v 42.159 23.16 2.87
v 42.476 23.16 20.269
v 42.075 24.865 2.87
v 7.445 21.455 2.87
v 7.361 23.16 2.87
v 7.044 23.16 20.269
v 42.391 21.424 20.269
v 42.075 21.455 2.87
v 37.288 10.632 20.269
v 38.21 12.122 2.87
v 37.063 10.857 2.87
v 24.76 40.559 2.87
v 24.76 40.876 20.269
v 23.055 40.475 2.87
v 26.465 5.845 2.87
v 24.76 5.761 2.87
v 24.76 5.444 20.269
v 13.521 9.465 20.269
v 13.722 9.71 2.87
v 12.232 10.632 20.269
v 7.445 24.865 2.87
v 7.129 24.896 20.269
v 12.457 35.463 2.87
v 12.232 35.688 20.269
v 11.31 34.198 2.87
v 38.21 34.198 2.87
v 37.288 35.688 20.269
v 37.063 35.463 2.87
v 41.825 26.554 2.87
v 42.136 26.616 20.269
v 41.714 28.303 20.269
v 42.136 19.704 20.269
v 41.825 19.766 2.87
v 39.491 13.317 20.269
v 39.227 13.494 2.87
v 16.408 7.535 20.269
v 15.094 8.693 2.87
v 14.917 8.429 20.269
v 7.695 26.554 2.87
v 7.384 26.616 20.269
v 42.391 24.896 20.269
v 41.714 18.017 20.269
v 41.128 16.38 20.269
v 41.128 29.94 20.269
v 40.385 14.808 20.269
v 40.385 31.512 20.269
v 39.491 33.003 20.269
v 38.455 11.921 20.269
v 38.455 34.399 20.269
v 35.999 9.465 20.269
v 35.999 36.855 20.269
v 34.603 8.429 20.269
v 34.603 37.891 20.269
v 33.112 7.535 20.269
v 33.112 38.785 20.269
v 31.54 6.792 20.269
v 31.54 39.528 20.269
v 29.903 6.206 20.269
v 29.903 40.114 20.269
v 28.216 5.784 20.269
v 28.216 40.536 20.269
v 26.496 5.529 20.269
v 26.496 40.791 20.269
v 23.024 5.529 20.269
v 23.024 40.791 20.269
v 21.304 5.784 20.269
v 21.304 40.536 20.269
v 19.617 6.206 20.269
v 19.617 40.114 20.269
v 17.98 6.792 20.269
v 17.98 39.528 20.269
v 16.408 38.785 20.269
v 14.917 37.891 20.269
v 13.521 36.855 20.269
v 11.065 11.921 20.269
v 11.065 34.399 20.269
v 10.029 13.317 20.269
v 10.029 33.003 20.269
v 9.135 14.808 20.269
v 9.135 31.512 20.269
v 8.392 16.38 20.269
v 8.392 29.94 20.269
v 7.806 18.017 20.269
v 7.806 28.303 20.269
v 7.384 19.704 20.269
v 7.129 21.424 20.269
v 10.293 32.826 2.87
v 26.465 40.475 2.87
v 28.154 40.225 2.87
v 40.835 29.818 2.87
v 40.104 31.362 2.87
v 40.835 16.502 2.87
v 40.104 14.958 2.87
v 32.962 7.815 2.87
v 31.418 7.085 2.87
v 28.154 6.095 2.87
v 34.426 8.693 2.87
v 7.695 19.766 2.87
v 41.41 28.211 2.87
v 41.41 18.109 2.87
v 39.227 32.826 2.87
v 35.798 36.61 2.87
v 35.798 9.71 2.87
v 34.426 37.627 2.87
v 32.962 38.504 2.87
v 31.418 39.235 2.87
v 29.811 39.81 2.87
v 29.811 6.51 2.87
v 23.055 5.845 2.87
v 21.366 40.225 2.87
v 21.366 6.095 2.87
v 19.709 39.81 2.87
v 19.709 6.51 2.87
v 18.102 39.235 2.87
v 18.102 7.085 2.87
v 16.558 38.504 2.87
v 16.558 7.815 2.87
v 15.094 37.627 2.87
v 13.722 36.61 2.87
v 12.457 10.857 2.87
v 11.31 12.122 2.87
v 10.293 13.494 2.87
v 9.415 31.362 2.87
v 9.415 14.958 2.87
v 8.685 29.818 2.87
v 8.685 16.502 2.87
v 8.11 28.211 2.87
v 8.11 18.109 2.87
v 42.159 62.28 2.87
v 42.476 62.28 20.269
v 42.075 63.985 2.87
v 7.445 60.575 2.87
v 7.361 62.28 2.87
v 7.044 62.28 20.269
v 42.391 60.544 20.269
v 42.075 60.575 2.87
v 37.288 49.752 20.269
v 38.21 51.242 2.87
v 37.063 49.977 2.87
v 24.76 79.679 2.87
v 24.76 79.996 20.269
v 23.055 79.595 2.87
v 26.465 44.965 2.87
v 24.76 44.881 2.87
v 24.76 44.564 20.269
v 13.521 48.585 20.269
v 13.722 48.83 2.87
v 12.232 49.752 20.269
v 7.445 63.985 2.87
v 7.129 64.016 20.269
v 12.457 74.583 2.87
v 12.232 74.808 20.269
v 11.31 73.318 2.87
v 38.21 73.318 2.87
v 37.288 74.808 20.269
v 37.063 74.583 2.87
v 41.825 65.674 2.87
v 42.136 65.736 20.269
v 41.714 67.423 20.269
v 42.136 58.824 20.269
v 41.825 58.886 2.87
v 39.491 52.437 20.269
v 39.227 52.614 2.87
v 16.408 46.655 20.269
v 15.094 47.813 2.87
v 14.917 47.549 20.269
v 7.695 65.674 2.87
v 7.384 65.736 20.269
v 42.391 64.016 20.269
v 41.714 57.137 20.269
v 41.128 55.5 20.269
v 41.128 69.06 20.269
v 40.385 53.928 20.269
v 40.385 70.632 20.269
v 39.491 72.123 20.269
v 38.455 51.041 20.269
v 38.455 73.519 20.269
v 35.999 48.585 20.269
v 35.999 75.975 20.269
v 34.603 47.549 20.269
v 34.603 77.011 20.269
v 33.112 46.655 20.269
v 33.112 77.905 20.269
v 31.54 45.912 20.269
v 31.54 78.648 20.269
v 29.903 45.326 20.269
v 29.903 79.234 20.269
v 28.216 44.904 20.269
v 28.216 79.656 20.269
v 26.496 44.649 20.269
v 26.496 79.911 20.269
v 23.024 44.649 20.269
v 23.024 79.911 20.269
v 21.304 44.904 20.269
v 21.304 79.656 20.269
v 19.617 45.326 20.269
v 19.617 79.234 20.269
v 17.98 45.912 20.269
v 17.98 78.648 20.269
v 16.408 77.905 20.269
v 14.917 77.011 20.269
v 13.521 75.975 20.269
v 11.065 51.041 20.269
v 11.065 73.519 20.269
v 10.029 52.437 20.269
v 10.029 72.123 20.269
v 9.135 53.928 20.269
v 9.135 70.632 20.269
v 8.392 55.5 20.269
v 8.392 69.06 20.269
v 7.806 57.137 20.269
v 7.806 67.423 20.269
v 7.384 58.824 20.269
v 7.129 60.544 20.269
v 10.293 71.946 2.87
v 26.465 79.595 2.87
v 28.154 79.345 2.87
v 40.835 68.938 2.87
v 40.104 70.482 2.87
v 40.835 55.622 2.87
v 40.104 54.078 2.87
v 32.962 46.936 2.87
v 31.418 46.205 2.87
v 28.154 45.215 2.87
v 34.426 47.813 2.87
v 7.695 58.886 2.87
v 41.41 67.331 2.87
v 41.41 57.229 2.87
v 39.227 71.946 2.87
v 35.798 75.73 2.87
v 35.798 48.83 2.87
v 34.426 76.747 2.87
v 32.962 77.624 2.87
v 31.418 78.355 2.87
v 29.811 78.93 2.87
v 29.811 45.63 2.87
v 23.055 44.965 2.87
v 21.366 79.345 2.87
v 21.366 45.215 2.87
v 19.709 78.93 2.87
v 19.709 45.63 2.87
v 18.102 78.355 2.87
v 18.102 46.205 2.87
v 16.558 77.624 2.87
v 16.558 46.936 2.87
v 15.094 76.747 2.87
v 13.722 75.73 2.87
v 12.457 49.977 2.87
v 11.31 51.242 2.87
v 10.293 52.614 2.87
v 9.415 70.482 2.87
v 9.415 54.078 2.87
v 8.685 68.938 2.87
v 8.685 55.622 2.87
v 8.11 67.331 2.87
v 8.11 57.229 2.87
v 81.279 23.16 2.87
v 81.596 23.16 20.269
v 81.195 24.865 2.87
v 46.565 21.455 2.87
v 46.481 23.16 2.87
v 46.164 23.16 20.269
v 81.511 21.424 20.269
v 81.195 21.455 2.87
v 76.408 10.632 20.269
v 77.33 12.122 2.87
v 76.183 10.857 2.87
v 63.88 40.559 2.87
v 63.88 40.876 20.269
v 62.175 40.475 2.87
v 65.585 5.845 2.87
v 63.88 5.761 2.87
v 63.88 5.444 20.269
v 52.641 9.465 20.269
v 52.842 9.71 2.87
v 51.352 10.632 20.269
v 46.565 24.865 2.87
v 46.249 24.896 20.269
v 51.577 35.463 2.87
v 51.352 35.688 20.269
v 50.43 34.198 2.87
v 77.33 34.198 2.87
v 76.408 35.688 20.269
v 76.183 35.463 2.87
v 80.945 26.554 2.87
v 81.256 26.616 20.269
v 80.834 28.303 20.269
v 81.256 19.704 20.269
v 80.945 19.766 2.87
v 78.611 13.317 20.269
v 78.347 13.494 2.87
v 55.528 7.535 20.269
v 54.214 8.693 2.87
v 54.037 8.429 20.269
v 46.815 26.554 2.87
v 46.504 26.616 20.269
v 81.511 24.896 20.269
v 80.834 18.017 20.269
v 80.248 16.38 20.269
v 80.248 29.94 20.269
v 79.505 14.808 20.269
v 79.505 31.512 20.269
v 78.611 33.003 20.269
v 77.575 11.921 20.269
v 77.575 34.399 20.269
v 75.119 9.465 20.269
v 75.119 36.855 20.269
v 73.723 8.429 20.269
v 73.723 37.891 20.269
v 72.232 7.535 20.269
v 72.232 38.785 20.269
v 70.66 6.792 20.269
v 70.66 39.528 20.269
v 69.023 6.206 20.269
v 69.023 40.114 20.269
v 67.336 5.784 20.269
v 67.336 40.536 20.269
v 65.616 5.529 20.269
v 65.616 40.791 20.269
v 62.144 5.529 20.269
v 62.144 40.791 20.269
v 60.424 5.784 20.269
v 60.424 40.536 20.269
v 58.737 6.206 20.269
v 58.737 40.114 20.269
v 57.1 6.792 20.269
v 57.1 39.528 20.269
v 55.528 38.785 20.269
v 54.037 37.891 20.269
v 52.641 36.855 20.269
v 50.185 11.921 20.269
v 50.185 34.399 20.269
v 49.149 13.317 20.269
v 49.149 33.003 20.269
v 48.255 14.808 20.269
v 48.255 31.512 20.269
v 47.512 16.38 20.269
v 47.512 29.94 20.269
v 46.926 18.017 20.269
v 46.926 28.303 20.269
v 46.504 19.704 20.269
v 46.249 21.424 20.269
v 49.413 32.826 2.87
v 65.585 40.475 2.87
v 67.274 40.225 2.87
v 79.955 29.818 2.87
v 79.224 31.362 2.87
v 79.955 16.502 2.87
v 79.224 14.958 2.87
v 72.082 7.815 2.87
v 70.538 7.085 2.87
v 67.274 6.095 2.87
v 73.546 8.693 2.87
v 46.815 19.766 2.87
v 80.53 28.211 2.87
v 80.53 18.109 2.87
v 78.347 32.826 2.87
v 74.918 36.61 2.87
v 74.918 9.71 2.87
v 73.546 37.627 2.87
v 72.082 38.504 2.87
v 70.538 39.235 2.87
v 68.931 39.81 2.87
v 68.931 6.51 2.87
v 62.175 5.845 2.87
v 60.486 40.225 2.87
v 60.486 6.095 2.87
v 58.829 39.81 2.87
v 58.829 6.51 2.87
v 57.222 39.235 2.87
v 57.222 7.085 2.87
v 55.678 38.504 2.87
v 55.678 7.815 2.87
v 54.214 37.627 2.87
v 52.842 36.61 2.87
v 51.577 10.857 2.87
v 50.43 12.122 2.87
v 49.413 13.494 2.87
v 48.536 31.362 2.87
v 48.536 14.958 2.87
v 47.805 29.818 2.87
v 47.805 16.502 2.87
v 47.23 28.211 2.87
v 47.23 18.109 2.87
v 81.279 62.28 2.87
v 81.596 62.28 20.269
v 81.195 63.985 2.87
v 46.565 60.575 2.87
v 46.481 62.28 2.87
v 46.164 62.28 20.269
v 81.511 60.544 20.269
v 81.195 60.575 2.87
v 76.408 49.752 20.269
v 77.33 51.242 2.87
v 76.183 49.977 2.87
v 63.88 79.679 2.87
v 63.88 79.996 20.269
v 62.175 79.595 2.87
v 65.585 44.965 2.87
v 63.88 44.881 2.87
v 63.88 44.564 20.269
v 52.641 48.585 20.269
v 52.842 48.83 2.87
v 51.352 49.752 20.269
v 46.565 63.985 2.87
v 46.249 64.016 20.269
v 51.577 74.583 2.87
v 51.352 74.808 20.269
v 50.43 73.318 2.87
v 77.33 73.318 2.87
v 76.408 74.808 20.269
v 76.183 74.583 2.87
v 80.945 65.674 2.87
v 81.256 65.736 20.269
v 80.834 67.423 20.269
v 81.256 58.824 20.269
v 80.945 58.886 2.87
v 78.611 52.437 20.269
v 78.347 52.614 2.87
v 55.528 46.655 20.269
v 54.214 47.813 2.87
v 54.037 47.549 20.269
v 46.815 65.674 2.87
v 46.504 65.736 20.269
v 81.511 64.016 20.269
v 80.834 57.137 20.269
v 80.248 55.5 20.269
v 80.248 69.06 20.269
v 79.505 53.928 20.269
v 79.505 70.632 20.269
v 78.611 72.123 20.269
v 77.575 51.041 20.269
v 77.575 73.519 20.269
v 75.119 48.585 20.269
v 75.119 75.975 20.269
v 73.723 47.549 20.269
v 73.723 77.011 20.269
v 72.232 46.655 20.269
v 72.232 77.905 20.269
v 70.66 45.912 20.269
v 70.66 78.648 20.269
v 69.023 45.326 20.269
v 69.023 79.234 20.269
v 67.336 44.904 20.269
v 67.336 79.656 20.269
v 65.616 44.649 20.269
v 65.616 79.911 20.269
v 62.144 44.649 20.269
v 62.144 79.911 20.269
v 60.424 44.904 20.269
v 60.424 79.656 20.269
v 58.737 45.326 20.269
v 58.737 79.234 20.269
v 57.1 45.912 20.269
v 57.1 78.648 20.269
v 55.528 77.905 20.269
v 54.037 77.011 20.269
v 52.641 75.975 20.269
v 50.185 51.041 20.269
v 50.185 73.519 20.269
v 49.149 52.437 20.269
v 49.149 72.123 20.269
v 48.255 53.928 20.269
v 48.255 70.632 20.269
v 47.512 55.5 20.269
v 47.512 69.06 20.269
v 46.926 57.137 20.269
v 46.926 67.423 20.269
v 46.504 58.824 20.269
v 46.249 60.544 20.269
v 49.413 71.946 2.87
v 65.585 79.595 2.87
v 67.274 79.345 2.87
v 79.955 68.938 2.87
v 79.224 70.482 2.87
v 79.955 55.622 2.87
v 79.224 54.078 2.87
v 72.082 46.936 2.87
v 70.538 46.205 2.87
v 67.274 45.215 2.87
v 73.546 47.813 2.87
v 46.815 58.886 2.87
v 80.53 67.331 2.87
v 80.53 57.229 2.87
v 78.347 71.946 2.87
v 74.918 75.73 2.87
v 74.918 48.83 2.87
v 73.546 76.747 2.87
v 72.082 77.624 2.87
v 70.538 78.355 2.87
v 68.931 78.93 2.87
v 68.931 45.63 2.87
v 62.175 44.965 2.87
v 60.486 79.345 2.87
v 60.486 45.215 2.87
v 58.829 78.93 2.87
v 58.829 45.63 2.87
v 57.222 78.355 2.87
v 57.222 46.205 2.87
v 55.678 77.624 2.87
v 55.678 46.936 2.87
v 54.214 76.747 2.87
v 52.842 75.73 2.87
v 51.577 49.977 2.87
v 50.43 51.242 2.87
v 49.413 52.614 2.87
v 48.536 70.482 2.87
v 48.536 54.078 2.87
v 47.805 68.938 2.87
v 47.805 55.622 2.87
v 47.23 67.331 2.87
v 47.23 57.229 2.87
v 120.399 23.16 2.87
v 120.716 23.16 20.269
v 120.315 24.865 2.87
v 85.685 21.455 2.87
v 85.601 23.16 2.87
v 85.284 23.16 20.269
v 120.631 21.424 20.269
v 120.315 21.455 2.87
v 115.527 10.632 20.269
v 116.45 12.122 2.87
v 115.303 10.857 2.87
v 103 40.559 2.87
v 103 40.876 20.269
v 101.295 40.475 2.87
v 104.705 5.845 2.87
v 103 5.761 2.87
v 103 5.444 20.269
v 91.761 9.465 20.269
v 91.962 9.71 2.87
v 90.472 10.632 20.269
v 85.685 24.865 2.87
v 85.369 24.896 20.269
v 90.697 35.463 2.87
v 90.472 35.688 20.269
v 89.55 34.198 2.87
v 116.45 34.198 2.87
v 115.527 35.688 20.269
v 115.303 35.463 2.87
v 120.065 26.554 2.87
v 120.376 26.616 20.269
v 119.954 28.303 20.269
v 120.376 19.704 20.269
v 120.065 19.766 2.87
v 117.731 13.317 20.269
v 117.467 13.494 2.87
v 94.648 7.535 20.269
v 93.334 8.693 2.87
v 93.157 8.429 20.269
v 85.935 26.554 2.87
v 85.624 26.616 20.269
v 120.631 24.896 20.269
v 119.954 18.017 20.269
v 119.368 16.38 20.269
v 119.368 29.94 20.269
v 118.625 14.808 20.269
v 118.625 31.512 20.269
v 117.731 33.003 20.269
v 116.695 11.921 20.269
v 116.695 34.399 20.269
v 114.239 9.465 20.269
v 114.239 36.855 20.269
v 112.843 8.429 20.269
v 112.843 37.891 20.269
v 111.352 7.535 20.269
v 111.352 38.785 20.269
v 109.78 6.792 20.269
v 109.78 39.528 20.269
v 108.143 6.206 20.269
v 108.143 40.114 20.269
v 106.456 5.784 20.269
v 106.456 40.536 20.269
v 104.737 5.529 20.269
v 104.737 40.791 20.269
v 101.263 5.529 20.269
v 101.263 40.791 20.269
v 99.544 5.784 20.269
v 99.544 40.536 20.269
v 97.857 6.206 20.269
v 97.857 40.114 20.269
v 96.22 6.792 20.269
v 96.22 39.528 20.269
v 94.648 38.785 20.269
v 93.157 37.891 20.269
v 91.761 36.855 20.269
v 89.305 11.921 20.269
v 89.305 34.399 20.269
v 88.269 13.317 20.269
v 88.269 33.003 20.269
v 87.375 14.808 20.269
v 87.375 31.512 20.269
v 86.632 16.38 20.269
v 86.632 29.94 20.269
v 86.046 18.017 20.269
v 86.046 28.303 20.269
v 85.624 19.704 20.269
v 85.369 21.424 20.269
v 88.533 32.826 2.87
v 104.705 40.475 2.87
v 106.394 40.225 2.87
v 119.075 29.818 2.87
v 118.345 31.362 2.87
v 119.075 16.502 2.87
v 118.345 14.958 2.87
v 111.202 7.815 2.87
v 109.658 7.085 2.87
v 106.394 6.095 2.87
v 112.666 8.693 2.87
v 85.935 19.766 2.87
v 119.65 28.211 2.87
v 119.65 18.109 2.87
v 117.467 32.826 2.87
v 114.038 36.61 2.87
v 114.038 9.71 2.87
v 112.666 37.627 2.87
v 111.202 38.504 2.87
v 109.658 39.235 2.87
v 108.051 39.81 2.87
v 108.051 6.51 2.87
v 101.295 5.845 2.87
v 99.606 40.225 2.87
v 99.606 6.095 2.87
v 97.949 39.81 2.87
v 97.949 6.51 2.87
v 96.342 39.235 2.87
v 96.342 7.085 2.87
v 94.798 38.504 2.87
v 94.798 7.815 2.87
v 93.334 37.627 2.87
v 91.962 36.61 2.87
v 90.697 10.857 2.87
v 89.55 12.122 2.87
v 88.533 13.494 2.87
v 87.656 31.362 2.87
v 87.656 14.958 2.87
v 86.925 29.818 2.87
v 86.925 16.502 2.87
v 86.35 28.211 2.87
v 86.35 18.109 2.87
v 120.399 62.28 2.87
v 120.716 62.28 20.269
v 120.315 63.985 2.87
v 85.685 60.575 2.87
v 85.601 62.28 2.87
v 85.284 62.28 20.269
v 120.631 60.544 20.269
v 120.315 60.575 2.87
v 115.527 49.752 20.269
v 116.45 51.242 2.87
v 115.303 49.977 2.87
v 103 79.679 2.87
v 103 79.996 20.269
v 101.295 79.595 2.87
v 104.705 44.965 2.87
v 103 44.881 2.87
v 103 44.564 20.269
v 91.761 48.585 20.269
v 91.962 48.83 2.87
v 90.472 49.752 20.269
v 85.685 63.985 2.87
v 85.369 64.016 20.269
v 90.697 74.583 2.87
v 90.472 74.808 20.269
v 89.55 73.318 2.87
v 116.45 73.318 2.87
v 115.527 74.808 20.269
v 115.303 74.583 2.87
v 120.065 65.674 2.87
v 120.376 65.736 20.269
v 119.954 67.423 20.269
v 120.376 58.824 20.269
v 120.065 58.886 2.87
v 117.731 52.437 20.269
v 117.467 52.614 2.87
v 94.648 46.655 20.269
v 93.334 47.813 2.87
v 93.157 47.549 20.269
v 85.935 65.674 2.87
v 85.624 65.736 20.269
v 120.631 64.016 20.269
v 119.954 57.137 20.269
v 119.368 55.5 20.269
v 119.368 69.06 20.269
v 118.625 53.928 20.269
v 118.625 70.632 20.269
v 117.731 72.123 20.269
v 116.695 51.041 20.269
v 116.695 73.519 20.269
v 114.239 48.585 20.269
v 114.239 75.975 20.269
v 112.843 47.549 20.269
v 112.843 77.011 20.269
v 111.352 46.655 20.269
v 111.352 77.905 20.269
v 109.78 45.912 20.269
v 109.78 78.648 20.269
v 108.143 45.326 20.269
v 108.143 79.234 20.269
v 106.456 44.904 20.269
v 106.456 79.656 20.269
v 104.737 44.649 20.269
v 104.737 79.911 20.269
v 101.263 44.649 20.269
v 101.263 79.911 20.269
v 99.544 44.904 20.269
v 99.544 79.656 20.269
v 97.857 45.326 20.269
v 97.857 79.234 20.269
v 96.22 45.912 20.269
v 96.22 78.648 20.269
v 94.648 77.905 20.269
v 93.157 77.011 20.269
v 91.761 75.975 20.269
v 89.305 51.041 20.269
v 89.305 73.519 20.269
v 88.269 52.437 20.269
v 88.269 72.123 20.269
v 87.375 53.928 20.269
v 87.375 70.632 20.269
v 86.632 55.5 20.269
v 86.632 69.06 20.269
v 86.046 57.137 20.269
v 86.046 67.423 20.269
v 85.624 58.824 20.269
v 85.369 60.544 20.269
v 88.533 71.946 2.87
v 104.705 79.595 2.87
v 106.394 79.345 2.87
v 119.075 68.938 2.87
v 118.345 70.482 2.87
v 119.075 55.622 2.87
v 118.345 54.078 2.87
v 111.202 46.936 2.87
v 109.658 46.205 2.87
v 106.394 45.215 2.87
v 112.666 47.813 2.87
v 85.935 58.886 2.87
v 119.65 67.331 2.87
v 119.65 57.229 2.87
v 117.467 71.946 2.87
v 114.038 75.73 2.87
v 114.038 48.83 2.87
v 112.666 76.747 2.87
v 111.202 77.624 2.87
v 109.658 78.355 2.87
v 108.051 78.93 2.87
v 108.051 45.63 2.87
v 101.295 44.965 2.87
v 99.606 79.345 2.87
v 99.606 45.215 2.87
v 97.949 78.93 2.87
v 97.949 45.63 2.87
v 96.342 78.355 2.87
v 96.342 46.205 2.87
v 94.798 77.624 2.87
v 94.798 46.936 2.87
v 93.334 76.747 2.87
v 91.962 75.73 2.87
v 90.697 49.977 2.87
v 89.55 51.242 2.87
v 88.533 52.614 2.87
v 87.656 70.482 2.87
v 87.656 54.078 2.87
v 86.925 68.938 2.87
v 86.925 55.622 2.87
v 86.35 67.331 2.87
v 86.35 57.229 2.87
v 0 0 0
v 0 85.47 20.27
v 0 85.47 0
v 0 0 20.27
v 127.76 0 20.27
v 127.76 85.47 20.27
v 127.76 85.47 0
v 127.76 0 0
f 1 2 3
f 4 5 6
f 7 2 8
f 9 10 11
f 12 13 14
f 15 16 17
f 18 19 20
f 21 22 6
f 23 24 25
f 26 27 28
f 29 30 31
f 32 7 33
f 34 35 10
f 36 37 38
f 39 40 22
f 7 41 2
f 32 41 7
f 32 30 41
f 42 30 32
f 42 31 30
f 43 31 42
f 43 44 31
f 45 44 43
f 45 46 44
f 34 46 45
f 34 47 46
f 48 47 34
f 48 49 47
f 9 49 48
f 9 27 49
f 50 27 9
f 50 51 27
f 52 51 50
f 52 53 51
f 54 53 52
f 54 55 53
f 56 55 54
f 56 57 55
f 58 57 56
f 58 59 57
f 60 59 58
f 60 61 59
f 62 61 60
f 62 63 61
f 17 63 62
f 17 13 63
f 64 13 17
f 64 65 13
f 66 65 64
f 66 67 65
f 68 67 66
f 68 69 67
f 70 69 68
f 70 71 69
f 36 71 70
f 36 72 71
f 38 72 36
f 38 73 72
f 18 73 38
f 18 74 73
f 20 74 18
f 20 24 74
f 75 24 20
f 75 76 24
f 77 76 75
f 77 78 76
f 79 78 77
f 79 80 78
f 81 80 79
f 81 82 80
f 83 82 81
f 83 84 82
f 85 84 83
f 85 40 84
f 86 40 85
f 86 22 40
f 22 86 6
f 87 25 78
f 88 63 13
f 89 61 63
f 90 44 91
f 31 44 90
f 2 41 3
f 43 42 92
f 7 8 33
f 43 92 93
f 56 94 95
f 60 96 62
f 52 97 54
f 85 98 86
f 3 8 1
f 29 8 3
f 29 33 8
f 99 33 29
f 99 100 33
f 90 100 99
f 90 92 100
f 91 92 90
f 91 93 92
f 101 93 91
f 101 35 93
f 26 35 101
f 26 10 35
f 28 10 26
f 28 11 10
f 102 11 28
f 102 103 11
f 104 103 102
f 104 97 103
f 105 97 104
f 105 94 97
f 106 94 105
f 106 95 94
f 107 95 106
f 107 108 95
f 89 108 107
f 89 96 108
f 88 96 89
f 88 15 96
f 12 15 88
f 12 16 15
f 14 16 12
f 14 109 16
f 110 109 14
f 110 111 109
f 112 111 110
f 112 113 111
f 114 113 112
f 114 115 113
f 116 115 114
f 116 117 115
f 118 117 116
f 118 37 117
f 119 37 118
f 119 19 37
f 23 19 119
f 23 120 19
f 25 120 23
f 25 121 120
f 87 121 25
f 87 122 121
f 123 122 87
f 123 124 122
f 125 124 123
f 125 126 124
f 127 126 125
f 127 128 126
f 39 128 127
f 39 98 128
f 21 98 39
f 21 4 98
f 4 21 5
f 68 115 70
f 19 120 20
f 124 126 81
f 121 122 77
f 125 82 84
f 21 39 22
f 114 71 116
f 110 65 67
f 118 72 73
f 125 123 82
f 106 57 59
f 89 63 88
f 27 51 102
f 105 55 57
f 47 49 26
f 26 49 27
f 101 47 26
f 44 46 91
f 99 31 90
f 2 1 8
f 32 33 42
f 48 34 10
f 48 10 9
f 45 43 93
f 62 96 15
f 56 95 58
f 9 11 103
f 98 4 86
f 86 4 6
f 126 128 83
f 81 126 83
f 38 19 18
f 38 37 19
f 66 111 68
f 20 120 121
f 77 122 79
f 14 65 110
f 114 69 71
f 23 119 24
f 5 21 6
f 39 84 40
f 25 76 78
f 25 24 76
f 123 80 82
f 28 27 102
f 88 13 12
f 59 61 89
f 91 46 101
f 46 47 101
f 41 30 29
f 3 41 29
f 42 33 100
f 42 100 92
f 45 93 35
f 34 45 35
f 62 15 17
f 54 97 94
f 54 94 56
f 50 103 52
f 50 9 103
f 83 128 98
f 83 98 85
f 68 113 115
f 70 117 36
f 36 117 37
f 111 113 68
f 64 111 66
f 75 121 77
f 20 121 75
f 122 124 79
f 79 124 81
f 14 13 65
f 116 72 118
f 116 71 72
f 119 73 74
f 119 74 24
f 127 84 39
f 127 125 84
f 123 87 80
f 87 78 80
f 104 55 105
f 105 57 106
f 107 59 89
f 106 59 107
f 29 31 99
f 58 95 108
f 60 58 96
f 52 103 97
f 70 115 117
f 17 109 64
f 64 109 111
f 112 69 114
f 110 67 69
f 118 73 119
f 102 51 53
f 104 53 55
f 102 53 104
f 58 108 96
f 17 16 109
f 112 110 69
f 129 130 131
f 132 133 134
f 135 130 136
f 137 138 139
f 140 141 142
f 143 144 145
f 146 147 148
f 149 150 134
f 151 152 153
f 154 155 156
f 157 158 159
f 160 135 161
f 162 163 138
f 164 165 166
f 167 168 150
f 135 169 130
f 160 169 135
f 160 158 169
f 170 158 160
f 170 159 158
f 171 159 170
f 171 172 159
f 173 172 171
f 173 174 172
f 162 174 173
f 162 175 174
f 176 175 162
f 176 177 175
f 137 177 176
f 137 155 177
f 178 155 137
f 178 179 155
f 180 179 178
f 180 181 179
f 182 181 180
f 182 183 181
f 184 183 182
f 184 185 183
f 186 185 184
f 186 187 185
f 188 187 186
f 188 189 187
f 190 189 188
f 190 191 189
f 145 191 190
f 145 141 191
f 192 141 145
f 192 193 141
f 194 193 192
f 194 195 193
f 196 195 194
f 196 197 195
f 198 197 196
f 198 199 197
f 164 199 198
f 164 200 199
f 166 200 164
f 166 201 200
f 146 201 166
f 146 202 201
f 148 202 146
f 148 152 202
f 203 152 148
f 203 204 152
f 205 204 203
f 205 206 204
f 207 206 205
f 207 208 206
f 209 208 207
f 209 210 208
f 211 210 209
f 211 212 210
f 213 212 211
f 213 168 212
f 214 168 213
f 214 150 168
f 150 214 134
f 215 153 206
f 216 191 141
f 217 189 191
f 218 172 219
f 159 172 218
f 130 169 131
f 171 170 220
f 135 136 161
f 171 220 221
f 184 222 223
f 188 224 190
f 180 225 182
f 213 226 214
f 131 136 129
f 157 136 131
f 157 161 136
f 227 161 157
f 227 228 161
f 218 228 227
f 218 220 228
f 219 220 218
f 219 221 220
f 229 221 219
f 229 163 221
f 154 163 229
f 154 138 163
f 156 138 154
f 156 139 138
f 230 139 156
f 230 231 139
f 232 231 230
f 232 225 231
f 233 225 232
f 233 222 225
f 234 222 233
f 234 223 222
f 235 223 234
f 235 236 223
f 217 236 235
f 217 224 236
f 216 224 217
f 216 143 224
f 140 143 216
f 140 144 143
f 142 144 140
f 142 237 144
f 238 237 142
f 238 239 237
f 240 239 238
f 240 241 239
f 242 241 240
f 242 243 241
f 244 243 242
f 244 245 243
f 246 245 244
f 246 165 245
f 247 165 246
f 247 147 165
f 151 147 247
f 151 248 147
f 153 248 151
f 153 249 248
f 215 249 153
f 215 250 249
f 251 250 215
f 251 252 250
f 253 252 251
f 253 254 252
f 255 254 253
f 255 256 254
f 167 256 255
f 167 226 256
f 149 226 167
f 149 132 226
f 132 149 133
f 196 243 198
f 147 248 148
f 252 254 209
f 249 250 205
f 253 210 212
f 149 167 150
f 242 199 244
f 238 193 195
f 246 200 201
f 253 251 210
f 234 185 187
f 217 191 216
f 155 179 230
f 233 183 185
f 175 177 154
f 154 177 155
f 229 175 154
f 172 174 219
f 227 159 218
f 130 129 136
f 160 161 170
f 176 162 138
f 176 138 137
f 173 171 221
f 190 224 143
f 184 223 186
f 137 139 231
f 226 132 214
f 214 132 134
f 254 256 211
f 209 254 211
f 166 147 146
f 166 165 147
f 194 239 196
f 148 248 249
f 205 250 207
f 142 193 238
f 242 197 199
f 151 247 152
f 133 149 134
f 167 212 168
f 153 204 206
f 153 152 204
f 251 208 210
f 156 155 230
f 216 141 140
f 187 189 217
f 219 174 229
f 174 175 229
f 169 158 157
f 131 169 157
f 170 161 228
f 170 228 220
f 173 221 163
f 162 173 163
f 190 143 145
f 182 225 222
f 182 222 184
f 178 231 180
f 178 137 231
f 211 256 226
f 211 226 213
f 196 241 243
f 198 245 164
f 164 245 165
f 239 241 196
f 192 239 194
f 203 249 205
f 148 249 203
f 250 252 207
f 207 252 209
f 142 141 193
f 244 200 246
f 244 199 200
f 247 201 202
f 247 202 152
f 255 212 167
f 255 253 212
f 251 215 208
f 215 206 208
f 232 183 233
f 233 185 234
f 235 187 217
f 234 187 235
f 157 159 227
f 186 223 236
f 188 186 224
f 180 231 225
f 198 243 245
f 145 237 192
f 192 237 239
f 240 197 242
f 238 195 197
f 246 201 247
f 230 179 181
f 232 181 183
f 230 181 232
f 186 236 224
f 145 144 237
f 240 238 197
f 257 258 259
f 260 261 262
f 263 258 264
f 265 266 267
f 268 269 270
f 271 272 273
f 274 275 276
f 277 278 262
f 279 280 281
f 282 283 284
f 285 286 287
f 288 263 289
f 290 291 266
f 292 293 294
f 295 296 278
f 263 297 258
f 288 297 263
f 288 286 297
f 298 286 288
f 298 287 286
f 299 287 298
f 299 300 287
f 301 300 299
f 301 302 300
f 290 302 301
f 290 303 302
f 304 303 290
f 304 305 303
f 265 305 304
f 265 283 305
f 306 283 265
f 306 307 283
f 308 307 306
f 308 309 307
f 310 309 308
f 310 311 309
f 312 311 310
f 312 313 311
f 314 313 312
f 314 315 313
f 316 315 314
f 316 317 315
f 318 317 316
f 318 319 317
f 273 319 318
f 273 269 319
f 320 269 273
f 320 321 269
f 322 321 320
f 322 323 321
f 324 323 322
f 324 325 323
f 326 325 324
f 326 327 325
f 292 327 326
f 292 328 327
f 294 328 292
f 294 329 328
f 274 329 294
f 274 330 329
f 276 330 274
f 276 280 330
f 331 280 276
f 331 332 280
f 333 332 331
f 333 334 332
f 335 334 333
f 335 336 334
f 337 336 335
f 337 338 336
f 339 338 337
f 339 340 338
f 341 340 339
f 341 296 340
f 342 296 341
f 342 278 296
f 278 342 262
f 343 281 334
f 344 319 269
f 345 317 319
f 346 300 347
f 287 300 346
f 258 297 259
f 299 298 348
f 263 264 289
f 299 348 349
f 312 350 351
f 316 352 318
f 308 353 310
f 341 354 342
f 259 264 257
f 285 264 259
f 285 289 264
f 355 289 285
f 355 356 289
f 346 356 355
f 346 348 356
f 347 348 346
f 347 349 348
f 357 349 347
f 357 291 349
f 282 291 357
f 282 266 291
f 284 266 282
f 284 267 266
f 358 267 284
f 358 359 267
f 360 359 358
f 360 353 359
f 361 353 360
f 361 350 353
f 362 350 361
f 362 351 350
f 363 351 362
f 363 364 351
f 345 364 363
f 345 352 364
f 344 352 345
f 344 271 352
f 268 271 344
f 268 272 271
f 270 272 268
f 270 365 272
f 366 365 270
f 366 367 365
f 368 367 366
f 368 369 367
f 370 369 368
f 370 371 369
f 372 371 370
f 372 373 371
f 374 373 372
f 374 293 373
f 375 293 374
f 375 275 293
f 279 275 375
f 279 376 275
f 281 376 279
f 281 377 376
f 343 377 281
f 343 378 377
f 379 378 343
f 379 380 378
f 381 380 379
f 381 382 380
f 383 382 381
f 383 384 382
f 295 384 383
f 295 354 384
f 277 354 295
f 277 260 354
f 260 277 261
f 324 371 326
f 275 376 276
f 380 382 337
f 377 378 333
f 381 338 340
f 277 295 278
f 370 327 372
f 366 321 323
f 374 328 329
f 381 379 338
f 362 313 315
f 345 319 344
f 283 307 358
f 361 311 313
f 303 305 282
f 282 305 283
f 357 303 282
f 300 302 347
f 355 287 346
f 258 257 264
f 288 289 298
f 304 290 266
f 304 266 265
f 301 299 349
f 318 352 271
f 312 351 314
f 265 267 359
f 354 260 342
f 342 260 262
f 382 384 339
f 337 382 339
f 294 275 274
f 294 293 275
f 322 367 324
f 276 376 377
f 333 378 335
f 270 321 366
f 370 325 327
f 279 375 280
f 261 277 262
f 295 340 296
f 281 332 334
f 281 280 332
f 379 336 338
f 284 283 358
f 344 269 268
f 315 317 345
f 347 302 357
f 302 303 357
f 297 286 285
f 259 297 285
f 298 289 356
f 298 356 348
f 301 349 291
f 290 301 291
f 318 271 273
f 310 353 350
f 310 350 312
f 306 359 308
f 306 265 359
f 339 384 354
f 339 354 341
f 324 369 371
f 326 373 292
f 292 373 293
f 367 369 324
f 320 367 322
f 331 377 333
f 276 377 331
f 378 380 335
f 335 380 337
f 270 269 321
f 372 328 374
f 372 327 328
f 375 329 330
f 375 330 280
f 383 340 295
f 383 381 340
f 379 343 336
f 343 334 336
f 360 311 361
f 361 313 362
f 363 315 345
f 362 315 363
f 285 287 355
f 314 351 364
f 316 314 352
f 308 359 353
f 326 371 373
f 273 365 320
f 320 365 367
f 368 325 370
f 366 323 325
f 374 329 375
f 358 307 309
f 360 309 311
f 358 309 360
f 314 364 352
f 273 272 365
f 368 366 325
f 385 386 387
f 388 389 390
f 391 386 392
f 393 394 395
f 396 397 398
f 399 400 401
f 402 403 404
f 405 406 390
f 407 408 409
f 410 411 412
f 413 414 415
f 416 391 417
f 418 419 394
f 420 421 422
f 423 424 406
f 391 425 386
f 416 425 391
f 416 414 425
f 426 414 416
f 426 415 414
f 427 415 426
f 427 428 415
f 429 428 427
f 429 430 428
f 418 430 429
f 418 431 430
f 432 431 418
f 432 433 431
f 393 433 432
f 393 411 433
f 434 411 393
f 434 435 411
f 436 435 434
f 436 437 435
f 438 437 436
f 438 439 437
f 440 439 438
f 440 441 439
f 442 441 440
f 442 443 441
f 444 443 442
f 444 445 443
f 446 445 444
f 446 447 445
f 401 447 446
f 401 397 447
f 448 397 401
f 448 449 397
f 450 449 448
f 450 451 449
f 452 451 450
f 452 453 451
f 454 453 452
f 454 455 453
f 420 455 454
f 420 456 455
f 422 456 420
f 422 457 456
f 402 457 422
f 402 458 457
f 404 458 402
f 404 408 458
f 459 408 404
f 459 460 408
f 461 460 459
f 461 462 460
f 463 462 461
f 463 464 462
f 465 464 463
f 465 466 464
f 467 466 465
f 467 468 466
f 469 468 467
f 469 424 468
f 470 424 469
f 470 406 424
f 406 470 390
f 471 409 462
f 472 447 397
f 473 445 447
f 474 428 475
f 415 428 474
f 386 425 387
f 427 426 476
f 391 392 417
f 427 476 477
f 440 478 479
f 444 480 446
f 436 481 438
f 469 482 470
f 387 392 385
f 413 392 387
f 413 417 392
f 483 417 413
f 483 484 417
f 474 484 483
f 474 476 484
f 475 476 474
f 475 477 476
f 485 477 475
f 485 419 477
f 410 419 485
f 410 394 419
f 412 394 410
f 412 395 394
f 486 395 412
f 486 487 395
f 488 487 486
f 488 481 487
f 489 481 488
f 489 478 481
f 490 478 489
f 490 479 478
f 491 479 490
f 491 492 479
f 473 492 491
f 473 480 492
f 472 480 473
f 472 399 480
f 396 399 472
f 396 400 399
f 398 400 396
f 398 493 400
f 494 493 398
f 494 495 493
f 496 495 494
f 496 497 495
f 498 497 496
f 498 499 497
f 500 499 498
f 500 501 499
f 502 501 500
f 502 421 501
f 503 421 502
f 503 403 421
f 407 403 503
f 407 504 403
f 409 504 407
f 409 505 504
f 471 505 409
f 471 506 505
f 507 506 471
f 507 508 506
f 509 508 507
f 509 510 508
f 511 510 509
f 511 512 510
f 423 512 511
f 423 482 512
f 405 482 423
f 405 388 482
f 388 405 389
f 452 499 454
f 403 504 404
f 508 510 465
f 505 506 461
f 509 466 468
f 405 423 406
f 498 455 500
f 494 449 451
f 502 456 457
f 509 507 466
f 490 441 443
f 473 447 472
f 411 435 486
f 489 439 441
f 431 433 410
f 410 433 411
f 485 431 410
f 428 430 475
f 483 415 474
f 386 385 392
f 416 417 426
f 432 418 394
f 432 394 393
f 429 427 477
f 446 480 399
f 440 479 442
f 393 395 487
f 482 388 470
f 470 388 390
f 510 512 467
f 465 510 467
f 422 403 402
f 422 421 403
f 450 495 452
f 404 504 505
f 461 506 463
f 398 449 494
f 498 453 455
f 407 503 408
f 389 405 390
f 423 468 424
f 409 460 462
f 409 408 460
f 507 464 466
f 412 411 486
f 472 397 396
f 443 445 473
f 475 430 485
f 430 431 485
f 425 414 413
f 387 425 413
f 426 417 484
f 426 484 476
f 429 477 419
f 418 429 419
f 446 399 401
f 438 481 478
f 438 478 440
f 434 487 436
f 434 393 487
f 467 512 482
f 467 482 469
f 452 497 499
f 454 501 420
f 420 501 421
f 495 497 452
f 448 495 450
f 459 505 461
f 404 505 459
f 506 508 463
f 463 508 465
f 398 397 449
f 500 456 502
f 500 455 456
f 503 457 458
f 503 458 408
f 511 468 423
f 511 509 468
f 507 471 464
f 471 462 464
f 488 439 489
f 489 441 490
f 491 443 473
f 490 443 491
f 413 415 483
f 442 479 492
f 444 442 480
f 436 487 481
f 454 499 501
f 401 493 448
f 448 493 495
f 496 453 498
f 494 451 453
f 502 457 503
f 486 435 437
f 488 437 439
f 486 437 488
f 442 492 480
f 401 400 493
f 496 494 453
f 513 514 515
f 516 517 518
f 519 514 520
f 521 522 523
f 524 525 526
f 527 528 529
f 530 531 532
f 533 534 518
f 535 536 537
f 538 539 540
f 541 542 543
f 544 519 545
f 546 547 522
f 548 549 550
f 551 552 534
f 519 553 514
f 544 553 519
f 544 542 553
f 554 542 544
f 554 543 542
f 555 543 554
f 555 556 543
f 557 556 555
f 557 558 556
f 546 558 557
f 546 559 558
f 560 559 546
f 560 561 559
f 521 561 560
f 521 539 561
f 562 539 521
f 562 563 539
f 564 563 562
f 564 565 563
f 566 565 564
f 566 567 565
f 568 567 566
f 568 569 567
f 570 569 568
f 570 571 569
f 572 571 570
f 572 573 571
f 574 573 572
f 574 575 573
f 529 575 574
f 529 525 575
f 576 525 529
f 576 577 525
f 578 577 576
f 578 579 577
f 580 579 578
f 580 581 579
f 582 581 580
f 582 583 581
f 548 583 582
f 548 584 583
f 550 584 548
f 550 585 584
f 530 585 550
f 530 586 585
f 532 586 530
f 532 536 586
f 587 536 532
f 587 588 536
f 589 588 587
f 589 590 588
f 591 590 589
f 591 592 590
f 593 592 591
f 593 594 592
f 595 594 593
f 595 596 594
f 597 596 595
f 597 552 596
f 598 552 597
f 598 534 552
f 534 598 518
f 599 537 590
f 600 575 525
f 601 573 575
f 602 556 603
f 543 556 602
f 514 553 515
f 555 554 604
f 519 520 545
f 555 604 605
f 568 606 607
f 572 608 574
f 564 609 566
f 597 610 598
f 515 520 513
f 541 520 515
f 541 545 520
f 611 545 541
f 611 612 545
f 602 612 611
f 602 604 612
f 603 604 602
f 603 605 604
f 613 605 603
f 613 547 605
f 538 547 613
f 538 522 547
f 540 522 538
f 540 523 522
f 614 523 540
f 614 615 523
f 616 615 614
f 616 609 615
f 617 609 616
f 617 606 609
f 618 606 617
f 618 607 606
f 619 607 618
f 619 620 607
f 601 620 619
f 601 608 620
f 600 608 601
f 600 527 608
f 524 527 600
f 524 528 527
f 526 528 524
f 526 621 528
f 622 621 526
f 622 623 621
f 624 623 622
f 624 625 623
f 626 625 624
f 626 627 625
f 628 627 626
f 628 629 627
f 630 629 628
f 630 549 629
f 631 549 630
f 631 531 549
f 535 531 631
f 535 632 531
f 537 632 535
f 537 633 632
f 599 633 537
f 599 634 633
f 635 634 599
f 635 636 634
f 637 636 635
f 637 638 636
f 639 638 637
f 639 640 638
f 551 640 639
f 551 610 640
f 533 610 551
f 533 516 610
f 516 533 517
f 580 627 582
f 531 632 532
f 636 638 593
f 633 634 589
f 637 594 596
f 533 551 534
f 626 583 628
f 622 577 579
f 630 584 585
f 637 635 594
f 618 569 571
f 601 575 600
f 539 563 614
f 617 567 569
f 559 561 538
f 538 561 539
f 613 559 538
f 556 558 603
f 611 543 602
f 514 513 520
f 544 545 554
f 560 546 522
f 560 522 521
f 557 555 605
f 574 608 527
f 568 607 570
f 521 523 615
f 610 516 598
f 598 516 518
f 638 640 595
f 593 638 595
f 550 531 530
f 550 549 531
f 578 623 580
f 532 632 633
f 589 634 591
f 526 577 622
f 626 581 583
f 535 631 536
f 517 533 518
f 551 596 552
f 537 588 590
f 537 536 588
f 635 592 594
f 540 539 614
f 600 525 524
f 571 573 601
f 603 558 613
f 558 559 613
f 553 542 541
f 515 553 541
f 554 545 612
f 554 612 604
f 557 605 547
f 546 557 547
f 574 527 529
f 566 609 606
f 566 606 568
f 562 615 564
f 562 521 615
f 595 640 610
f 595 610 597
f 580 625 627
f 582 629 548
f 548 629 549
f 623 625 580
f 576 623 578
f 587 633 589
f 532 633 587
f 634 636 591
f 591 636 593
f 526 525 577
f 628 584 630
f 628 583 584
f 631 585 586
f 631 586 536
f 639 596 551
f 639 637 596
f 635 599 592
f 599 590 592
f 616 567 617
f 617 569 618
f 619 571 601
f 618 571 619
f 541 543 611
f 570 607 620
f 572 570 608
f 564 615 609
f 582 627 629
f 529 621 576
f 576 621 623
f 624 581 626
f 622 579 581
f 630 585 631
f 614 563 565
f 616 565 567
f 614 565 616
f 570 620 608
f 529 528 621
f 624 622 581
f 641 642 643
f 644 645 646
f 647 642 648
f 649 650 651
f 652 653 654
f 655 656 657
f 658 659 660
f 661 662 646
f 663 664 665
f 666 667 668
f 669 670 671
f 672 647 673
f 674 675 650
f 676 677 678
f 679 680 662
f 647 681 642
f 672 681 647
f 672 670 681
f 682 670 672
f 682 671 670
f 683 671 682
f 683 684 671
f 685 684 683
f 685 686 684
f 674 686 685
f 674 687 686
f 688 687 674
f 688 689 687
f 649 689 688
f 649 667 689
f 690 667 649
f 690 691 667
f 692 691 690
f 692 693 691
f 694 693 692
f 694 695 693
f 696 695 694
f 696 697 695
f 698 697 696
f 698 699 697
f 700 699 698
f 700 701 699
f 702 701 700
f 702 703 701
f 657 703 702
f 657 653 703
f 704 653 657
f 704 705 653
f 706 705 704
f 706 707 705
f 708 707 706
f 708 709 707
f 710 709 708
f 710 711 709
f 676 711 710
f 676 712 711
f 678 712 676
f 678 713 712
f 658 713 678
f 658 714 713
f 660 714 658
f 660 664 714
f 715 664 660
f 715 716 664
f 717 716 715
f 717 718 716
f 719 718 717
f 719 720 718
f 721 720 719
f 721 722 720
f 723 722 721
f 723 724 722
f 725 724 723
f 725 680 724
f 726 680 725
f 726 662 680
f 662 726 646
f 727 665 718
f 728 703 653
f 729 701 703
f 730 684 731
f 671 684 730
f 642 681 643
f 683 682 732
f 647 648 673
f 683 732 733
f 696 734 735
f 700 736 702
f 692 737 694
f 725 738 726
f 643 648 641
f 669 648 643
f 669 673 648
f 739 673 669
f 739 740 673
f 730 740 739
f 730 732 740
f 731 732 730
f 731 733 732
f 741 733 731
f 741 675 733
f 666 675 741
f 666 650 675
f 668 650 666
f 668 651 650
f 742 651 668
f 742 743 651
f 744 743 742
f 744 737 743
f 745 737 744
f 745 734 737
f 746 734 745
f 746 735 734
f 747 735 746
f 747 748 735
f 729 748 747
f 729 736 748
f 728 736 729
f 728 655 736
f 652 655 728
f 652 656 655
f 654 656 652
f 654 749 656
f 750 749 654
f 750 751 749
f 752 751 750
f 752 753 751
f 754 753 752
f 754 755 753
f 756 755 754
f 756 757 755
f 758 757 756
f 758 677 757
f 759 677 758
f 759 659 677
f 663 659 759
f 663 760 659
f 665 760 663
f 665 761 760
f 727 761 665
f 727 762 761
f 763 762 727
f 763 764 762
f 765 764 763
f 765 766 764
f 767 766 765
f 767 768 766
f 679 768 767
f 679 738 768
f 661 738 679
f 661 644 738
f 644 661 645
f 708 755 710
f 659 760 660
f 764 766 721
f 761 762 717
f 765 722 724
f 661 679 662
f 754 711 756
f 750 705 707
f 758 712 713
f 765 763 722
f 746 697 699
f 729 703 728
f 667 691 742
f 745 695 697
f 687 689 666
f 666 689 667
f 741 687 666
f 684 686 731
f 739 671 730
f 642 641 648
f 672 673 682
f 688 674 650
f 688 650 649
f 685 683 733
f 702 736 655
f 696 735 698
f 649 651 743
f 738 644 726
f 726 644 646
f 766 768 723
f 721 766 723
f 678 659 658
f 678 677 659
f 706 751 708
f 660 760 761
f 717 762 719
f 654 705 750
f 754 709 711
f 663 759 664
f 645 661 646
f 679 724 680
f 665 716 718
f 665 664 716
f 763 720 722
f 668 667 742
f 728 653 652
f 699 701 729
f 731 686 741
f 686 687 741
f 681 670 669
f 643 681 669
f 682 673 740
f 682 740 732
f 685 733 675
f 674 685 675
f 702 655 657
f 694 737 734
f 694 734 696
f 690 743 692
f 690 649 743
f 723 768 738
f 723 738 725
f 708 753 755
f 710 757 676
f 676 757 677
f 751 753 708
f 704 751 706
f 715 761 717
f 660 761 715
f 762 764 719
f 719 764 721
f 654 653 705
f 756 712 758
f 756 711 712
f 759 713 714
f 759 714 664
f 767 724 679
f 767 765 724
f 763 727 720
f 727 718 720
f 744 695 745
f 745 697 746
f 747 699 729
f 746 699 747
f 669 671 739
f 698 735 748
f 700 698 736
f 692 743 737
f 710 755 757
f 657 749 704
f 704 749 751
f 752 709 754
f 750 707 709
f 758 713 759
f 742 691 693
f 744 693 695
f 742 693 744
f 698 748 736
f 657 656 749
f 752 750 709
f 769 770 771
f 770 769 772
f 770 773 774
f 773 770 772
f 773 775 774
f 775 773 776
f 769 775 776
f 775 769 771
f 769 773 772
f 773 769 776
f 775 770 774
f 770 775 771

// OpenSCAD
// Corning 6 Well Plate 16.8 mL Flat
// loadName: corning_6_wellplate_16.8ml_flat
// Auto-generated by labware_to_stl.py from Opentrons V2 labware definition

$fn = 64;

difference() {
    // ── Labware body ──────────────────────────────────────────────
    cube([127.7600, 85.4700, 20.2700]);

    // ── Well cutouts ──────────────────────────────────────────────
    // Well B1
    translate([24.7600, 23.1600, 2.8700]) union() {
        translate([0, 0, 0.0000])
            cylinder(h=17.3990, r1=17.3990, r2=17.7165, $fn=$fn);
        translate([0, 0, 17.4000])
            cylinder(h=1, r=17.7165, $fn=$fn);
    }
    // Well A1
    translate([24.7600, 62.2800, 2.8700]) union() {
        translate([0, 0, 0.0000])
            cylinder(h=17.3990, r1=17.3990, r2=17.7165, $fn=$fn);
        translate([0, 0, 17.4000])
            cylinder(h=1, r=17.7165, $fn=$fn);
    }
    // Well B2
    translate([63.8800, 23.1600, 2.8700]) union() {
        translate([0, 0, 0.0000])
            cylinder(h=17.3990, r1=17.3990, r2=17.7165, $fn=$fn);
        translate([0, 0, 17.4000])
            cylinder(h=1, r=17.7165, $fn=$fn);
    }
    // Well A2
    translate([63.8800, 62.2800, 2.8700]) union() {
        translate([0, 0, 0.0000])
            cylinder(h=17.3990, r1=17.3990, r2=17.7165, $fn=$fn);
        translate([0, 0, 17.4000])
            cylinder(h=1, r=17.7165, $fn=$fn);
    }
    // Well B3
    translate([103.0000, 23.1600, 2.8700]) union() {
        translate([0, 0, 0.0000])
            cylinder(h=17.3990, r1=17.3990, r2=17.7165, $fn=$fn);
        translate([0, 0, 17.4000])
            cylinder(h=1, r=17.7165, $fn=$fn);
    }
    // Well A3
    translate([103.0000, 62.2800, 2.8700]) union() {
        translate([0, 0, 0.0000])
            cylinder(h=17.3990, r1=17.3990, r2=17.7165, $fn=$fn);
        translate([0, 0, 17.4000])
            cylinder(h=1, r=17.7165, $fn=$fn);
    }
}
